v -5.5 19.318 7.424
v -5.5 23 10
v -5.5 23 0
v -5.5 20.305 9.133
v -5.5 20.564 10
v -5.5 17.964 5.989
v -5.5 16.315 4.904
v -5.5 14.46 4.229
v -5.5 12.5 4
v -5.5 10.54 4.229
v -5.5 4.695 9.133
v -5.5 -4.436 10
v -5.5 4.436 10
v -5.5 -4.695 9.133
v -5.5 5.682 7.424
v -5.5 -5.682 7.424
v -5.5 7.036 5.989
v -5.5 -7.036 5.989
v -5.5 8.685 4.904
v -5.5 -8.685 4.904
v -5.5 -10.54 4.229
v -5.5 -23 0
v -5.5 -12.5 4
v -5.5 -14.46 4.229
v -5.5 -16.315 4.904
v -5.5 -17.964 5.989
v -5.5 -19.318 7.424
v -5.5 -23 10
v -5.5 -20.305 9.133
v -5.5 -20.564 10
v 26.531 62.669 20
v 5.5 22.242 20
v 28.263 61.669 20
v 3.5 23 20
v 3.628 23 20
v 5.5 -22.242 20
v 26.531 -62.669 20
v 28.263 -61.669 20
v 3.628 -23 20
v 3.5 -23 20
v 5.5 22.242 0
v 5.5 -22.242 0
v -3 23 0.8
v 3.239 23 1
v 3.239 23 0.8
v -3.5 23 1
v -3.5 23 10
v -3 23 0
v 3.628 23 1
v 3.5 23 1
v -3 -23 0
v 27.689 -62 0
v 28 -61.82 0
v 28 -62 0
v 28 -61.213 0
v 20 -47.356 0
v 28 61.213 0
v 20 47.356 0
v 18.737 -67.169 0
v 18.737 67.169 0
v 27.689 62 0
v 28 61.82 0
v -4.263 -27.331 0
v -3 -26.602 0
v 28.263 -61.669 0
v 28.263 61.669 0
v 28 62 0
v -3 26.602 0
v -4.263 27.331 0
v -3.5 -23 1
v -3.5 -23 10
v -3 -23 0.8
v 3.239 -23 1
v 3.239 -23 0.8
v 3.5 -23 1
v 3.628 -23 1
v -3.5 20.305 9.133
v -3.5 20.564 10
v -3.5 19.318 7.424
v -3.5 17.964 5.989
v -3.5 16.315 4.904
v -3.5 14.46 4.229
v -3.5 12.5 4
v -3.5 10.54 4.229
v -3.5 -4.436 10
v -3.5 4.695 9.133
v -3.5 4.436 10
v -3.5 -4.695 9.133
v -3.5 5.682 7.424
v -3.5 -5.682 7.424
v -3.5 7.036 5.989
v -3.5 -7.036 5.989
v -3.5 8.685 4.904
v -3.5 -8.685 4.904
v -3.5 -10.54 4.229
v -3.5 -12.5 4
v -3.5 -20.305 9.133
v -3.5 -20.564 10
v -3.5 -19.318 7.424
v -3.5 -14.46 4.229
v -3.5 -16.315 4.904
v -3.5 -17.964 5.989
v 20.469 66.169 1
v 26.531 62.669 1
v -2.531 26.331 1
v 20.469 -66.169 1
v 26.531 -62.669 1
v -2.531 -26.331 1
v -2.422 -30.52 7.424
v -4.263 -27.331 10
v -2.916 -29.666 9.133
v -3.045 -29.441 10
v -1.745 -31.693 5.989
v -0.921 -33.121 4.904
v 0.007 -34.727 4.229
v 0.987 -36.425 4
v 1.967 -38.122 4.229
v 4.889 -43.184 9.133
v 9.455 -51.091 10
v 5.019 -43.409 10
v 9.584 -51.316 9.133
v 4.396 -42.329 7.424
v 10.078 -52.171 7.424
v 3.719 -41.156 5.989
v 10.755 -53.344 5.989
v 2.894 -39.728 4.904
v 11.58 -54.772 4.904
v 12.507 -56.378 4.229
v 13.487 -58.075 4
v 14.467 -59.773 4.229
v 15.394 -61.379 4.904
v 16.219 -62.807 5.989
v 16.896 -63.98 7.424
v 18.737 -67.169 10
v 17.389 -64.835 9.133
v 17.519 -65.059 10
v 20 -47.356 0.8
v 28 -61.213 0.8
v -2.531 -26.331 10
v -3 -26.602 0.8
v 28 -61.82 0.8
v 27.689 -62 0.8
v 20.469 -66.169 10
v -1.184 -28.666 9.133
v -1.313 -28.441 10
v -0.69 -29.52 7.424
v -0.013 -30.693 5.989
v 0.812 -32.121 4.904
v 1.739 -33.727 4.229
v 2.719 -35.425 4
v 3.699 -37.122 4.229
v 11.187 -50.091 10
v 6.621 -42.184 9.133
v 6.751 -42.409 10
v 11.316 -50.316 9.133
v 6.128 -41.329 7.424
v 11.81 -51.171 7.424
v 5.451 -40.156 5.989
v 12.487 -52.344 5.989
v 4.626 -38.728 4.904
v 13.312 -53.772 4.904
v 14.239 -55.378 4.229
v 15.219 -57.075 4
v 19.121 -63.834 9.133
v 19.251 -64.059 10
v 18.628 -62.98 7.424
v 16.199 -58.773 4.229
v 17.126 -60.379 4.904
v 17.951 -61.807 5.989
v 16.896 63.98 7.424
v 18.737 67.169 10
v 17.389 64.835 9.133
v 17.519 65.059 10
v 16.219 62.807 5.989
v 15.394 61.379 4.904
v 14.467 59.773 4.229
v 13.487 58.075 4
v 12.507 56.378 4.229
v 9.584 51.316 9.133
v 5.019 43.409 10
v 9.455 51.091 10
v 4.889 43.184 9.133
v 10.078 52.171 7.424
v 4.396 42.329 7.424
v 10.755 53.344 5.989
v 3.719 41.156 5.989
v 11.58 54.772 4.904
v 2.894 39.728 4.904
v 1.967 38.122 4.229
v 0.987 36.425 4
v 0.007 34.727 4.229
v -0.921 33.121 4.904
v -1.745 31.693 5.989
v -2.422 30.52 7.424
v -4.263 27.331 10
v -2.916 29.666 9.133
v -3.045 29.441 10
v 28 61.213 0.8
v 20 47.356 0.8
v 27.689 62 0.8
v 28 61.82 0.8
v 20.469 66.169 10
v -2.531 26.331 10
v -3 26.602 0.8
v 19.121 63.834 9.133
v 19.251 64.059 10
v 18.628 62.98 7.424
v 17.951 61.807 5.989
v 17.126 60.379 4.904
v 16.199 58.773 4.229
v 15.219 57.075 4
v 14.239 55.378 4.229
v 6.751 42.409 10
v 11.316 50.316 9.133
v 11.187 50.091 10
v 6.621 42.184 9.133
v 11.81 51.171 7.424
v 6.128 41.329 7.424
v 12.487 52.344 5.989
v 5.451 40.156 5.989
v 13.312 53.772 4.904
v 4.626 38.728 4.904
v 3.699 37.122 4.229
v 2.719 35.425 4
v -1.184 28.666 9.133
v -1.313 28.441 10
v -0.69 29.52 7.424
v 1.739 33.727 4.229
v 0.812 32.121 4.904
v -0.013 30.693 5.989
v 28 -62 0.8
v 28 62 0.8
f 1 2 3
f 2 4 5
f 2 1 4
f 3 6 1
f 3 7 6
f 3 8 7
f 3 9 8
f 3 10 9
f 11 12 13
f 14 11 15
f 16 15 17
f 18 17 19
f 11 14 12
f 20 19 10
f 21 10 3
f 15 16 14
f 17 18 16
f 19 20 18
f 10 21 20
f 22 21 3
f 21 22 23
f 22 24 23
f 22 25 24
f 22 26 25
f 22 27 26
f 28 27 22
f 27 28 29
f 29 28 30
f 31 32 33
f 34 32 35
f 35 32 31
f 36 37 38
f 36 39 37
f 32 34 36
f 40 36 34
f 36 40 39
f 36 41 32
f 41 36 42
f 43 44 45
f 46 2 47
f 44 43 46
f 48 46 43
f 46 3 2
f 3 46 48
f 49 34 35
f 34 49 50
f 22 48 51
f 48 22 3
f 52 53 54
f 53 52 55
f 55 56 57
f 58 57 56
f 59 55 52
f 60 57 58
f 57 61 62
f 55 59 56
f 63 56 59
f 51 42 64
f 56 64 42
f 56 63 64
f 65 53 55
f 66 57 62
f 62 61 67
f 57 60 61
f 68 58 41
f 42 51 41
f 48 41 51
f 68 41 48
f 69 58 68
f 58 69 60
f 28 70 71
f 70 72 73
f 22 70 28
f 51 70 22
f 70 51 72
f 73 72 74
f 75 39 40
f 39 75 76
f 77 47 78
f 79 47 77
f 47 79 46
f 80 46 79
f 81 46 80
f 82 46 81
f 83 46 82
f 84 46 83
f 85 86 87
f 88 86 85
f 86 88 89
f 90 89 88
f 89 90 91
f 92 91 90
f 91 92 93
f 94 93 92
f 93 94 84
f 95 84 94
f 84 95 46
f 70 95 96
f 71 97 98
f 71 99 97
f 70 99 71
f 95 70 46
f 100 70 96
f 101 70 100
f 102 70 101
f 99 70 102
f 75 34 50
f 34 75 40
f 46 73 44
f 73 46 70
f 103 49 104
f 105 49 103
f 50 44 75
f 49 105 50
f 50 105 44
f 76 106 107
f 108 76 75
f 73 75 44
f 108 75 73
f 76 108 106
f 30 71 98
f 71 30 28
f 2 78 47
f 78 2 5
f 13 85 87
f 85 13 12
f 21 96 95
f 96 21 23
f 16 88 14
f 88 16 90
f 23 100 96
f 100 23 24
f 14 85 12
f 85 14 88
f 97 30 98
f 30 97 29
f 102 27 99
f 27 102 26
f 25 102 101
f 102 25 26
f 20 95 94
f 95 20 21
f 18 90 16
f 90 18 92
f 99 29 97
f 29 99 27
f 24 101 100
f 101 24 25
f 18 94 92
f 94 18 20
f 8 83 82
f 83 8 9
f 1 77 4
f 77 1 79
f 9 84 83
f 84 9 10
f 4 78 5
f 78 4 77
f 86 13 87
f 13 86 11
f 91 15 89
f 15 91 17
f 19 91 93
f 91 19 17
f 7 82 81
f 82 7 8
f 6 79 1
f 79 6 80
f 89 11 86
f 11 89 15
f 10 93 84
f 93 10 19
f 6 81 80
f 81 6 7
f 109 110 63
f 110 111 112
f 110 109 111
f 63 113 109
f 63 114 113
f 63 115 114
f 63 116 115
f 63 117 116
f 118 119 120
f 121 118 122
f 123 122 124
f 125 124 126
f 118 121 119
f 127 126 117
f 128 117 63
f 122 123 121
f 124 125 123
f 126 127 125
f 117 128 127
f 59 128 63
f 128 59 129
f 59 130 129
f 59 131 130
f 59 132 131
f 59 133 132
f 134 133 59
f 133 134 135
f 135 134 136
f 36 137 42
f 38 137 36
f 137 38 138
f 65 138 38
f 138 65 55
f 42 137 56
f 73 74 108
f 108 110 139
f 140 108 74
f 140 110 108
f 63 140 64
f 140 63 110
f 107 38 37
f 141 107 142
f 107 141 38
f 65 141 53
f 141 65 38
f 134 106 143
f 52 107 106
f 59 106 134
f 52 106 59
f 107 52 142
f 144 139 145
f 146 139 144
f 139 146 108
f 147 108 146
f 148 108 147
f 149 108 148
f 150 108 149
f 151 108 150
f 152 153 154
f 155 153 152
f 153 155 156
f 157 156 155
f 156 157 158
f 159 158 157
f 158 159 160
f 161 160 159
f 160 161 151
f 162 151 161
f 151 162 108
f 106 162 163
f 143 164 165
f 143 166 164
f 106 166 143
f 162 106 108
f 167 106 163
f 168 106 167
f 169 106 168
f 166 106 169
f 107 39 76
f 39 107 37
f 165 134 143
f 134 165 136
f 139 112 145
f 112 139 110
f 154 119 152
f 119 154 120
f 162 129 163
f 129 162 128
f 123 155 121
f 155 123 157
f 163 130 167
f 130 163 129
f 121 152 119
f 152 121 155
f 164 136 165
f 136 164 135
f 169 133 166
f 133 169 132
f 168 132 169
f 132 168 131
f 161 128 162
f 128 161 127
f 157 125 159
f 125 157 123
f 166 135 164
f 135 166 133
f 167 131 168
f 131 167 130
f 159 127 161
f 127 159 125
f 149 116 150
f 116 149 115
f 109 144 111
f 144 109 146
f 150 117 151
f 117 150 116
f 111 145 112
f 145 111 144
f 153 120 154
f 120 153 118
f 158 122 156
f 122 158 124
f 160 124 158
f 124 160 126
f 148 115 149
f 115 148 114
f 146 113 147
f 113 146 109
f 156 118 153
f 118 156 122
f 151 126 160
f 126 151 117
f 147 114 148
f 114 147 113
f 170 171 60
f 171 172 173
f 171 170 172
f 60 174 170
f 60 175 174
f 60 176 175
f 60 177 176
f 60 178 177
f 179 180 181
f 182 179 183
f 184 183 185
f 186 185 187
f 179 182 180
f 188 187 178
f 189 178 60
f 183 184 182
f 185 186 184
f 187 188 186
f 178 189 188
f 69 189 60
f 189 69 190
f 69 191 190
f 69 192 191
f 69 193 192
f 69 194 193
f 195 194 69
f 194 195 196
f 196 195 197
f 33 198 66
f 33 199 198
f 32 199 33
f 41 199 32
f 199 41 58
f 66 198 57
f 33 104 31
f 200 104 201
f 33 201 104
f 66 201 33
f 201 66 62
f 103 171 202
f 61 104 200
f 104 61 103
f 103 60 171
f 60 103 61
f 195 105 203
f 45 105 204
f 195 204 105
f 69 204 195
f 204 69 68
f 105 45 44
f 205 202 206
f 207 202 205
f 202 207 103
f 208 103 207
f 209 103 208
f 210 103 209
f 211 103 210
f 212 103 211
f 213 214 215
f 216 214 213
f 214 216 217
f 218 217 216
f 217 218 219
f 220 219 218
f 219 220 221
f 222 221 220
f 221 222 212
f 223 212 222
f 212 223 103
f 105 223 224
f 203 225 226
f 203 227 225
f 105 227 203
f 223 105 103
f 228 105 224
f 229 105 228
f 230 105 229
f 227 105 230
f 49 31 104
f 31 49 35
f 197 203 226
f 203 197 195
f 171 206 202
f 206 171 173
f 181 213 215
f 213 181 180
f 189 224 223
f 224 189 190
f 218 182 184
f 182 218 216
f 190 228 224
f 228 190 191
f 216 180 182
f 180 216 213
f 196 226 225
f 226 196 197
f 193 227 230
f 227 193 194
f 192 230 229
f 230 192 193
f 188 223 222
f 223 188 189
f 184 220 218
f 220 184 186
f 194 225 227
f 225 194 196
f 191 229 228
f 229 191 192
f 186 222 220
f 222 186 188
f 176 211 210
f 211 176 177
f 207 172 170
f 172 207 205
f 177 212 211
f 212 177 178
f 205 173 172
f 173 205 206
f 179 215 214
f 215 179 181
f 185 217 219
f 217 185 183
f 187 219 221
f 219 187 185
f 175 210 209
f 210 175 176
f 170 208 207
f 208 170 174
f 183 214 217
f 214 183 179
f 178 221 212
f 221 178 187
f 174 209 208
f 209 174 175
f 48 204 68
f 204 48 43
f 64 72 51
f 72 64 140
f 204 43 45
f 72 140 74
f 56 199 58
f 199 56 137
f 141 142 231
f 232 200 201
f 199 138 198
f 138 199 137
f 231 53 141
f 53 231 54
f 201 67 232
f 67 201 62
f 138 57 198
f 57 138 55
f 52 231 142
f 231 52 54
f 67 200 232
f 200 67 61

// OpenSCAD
module sensorHolder() 
{
    translate([-5.5,-23,0])
    difference()
    {
        cube([11,46,20]);
        translate([2,-1,1]) cube([7,48,30]);
        translate([-4,-1,10]) cube([7,48,30]);
        translate([-10,10.5,2+8.5+2]) rotate([0,90,0]) cylinder(r=8.5,h=15);
        translate([-10,25+10.5,2+8.5+2]) rotate([0,90,0]) cylinder(r=8.5,h=15);
    }
}

sensorHolder();
translate([12,-44.5,0]) rotate([0,0,30]) sensorHolder();
translate([12,44.5,0]) rotate([0,0,-30]) sensorHolder();
translate([-3,-29,0]) cube([8,58,0.8]);

translate([20,-62,0]) cube([8,124,0.8]);
